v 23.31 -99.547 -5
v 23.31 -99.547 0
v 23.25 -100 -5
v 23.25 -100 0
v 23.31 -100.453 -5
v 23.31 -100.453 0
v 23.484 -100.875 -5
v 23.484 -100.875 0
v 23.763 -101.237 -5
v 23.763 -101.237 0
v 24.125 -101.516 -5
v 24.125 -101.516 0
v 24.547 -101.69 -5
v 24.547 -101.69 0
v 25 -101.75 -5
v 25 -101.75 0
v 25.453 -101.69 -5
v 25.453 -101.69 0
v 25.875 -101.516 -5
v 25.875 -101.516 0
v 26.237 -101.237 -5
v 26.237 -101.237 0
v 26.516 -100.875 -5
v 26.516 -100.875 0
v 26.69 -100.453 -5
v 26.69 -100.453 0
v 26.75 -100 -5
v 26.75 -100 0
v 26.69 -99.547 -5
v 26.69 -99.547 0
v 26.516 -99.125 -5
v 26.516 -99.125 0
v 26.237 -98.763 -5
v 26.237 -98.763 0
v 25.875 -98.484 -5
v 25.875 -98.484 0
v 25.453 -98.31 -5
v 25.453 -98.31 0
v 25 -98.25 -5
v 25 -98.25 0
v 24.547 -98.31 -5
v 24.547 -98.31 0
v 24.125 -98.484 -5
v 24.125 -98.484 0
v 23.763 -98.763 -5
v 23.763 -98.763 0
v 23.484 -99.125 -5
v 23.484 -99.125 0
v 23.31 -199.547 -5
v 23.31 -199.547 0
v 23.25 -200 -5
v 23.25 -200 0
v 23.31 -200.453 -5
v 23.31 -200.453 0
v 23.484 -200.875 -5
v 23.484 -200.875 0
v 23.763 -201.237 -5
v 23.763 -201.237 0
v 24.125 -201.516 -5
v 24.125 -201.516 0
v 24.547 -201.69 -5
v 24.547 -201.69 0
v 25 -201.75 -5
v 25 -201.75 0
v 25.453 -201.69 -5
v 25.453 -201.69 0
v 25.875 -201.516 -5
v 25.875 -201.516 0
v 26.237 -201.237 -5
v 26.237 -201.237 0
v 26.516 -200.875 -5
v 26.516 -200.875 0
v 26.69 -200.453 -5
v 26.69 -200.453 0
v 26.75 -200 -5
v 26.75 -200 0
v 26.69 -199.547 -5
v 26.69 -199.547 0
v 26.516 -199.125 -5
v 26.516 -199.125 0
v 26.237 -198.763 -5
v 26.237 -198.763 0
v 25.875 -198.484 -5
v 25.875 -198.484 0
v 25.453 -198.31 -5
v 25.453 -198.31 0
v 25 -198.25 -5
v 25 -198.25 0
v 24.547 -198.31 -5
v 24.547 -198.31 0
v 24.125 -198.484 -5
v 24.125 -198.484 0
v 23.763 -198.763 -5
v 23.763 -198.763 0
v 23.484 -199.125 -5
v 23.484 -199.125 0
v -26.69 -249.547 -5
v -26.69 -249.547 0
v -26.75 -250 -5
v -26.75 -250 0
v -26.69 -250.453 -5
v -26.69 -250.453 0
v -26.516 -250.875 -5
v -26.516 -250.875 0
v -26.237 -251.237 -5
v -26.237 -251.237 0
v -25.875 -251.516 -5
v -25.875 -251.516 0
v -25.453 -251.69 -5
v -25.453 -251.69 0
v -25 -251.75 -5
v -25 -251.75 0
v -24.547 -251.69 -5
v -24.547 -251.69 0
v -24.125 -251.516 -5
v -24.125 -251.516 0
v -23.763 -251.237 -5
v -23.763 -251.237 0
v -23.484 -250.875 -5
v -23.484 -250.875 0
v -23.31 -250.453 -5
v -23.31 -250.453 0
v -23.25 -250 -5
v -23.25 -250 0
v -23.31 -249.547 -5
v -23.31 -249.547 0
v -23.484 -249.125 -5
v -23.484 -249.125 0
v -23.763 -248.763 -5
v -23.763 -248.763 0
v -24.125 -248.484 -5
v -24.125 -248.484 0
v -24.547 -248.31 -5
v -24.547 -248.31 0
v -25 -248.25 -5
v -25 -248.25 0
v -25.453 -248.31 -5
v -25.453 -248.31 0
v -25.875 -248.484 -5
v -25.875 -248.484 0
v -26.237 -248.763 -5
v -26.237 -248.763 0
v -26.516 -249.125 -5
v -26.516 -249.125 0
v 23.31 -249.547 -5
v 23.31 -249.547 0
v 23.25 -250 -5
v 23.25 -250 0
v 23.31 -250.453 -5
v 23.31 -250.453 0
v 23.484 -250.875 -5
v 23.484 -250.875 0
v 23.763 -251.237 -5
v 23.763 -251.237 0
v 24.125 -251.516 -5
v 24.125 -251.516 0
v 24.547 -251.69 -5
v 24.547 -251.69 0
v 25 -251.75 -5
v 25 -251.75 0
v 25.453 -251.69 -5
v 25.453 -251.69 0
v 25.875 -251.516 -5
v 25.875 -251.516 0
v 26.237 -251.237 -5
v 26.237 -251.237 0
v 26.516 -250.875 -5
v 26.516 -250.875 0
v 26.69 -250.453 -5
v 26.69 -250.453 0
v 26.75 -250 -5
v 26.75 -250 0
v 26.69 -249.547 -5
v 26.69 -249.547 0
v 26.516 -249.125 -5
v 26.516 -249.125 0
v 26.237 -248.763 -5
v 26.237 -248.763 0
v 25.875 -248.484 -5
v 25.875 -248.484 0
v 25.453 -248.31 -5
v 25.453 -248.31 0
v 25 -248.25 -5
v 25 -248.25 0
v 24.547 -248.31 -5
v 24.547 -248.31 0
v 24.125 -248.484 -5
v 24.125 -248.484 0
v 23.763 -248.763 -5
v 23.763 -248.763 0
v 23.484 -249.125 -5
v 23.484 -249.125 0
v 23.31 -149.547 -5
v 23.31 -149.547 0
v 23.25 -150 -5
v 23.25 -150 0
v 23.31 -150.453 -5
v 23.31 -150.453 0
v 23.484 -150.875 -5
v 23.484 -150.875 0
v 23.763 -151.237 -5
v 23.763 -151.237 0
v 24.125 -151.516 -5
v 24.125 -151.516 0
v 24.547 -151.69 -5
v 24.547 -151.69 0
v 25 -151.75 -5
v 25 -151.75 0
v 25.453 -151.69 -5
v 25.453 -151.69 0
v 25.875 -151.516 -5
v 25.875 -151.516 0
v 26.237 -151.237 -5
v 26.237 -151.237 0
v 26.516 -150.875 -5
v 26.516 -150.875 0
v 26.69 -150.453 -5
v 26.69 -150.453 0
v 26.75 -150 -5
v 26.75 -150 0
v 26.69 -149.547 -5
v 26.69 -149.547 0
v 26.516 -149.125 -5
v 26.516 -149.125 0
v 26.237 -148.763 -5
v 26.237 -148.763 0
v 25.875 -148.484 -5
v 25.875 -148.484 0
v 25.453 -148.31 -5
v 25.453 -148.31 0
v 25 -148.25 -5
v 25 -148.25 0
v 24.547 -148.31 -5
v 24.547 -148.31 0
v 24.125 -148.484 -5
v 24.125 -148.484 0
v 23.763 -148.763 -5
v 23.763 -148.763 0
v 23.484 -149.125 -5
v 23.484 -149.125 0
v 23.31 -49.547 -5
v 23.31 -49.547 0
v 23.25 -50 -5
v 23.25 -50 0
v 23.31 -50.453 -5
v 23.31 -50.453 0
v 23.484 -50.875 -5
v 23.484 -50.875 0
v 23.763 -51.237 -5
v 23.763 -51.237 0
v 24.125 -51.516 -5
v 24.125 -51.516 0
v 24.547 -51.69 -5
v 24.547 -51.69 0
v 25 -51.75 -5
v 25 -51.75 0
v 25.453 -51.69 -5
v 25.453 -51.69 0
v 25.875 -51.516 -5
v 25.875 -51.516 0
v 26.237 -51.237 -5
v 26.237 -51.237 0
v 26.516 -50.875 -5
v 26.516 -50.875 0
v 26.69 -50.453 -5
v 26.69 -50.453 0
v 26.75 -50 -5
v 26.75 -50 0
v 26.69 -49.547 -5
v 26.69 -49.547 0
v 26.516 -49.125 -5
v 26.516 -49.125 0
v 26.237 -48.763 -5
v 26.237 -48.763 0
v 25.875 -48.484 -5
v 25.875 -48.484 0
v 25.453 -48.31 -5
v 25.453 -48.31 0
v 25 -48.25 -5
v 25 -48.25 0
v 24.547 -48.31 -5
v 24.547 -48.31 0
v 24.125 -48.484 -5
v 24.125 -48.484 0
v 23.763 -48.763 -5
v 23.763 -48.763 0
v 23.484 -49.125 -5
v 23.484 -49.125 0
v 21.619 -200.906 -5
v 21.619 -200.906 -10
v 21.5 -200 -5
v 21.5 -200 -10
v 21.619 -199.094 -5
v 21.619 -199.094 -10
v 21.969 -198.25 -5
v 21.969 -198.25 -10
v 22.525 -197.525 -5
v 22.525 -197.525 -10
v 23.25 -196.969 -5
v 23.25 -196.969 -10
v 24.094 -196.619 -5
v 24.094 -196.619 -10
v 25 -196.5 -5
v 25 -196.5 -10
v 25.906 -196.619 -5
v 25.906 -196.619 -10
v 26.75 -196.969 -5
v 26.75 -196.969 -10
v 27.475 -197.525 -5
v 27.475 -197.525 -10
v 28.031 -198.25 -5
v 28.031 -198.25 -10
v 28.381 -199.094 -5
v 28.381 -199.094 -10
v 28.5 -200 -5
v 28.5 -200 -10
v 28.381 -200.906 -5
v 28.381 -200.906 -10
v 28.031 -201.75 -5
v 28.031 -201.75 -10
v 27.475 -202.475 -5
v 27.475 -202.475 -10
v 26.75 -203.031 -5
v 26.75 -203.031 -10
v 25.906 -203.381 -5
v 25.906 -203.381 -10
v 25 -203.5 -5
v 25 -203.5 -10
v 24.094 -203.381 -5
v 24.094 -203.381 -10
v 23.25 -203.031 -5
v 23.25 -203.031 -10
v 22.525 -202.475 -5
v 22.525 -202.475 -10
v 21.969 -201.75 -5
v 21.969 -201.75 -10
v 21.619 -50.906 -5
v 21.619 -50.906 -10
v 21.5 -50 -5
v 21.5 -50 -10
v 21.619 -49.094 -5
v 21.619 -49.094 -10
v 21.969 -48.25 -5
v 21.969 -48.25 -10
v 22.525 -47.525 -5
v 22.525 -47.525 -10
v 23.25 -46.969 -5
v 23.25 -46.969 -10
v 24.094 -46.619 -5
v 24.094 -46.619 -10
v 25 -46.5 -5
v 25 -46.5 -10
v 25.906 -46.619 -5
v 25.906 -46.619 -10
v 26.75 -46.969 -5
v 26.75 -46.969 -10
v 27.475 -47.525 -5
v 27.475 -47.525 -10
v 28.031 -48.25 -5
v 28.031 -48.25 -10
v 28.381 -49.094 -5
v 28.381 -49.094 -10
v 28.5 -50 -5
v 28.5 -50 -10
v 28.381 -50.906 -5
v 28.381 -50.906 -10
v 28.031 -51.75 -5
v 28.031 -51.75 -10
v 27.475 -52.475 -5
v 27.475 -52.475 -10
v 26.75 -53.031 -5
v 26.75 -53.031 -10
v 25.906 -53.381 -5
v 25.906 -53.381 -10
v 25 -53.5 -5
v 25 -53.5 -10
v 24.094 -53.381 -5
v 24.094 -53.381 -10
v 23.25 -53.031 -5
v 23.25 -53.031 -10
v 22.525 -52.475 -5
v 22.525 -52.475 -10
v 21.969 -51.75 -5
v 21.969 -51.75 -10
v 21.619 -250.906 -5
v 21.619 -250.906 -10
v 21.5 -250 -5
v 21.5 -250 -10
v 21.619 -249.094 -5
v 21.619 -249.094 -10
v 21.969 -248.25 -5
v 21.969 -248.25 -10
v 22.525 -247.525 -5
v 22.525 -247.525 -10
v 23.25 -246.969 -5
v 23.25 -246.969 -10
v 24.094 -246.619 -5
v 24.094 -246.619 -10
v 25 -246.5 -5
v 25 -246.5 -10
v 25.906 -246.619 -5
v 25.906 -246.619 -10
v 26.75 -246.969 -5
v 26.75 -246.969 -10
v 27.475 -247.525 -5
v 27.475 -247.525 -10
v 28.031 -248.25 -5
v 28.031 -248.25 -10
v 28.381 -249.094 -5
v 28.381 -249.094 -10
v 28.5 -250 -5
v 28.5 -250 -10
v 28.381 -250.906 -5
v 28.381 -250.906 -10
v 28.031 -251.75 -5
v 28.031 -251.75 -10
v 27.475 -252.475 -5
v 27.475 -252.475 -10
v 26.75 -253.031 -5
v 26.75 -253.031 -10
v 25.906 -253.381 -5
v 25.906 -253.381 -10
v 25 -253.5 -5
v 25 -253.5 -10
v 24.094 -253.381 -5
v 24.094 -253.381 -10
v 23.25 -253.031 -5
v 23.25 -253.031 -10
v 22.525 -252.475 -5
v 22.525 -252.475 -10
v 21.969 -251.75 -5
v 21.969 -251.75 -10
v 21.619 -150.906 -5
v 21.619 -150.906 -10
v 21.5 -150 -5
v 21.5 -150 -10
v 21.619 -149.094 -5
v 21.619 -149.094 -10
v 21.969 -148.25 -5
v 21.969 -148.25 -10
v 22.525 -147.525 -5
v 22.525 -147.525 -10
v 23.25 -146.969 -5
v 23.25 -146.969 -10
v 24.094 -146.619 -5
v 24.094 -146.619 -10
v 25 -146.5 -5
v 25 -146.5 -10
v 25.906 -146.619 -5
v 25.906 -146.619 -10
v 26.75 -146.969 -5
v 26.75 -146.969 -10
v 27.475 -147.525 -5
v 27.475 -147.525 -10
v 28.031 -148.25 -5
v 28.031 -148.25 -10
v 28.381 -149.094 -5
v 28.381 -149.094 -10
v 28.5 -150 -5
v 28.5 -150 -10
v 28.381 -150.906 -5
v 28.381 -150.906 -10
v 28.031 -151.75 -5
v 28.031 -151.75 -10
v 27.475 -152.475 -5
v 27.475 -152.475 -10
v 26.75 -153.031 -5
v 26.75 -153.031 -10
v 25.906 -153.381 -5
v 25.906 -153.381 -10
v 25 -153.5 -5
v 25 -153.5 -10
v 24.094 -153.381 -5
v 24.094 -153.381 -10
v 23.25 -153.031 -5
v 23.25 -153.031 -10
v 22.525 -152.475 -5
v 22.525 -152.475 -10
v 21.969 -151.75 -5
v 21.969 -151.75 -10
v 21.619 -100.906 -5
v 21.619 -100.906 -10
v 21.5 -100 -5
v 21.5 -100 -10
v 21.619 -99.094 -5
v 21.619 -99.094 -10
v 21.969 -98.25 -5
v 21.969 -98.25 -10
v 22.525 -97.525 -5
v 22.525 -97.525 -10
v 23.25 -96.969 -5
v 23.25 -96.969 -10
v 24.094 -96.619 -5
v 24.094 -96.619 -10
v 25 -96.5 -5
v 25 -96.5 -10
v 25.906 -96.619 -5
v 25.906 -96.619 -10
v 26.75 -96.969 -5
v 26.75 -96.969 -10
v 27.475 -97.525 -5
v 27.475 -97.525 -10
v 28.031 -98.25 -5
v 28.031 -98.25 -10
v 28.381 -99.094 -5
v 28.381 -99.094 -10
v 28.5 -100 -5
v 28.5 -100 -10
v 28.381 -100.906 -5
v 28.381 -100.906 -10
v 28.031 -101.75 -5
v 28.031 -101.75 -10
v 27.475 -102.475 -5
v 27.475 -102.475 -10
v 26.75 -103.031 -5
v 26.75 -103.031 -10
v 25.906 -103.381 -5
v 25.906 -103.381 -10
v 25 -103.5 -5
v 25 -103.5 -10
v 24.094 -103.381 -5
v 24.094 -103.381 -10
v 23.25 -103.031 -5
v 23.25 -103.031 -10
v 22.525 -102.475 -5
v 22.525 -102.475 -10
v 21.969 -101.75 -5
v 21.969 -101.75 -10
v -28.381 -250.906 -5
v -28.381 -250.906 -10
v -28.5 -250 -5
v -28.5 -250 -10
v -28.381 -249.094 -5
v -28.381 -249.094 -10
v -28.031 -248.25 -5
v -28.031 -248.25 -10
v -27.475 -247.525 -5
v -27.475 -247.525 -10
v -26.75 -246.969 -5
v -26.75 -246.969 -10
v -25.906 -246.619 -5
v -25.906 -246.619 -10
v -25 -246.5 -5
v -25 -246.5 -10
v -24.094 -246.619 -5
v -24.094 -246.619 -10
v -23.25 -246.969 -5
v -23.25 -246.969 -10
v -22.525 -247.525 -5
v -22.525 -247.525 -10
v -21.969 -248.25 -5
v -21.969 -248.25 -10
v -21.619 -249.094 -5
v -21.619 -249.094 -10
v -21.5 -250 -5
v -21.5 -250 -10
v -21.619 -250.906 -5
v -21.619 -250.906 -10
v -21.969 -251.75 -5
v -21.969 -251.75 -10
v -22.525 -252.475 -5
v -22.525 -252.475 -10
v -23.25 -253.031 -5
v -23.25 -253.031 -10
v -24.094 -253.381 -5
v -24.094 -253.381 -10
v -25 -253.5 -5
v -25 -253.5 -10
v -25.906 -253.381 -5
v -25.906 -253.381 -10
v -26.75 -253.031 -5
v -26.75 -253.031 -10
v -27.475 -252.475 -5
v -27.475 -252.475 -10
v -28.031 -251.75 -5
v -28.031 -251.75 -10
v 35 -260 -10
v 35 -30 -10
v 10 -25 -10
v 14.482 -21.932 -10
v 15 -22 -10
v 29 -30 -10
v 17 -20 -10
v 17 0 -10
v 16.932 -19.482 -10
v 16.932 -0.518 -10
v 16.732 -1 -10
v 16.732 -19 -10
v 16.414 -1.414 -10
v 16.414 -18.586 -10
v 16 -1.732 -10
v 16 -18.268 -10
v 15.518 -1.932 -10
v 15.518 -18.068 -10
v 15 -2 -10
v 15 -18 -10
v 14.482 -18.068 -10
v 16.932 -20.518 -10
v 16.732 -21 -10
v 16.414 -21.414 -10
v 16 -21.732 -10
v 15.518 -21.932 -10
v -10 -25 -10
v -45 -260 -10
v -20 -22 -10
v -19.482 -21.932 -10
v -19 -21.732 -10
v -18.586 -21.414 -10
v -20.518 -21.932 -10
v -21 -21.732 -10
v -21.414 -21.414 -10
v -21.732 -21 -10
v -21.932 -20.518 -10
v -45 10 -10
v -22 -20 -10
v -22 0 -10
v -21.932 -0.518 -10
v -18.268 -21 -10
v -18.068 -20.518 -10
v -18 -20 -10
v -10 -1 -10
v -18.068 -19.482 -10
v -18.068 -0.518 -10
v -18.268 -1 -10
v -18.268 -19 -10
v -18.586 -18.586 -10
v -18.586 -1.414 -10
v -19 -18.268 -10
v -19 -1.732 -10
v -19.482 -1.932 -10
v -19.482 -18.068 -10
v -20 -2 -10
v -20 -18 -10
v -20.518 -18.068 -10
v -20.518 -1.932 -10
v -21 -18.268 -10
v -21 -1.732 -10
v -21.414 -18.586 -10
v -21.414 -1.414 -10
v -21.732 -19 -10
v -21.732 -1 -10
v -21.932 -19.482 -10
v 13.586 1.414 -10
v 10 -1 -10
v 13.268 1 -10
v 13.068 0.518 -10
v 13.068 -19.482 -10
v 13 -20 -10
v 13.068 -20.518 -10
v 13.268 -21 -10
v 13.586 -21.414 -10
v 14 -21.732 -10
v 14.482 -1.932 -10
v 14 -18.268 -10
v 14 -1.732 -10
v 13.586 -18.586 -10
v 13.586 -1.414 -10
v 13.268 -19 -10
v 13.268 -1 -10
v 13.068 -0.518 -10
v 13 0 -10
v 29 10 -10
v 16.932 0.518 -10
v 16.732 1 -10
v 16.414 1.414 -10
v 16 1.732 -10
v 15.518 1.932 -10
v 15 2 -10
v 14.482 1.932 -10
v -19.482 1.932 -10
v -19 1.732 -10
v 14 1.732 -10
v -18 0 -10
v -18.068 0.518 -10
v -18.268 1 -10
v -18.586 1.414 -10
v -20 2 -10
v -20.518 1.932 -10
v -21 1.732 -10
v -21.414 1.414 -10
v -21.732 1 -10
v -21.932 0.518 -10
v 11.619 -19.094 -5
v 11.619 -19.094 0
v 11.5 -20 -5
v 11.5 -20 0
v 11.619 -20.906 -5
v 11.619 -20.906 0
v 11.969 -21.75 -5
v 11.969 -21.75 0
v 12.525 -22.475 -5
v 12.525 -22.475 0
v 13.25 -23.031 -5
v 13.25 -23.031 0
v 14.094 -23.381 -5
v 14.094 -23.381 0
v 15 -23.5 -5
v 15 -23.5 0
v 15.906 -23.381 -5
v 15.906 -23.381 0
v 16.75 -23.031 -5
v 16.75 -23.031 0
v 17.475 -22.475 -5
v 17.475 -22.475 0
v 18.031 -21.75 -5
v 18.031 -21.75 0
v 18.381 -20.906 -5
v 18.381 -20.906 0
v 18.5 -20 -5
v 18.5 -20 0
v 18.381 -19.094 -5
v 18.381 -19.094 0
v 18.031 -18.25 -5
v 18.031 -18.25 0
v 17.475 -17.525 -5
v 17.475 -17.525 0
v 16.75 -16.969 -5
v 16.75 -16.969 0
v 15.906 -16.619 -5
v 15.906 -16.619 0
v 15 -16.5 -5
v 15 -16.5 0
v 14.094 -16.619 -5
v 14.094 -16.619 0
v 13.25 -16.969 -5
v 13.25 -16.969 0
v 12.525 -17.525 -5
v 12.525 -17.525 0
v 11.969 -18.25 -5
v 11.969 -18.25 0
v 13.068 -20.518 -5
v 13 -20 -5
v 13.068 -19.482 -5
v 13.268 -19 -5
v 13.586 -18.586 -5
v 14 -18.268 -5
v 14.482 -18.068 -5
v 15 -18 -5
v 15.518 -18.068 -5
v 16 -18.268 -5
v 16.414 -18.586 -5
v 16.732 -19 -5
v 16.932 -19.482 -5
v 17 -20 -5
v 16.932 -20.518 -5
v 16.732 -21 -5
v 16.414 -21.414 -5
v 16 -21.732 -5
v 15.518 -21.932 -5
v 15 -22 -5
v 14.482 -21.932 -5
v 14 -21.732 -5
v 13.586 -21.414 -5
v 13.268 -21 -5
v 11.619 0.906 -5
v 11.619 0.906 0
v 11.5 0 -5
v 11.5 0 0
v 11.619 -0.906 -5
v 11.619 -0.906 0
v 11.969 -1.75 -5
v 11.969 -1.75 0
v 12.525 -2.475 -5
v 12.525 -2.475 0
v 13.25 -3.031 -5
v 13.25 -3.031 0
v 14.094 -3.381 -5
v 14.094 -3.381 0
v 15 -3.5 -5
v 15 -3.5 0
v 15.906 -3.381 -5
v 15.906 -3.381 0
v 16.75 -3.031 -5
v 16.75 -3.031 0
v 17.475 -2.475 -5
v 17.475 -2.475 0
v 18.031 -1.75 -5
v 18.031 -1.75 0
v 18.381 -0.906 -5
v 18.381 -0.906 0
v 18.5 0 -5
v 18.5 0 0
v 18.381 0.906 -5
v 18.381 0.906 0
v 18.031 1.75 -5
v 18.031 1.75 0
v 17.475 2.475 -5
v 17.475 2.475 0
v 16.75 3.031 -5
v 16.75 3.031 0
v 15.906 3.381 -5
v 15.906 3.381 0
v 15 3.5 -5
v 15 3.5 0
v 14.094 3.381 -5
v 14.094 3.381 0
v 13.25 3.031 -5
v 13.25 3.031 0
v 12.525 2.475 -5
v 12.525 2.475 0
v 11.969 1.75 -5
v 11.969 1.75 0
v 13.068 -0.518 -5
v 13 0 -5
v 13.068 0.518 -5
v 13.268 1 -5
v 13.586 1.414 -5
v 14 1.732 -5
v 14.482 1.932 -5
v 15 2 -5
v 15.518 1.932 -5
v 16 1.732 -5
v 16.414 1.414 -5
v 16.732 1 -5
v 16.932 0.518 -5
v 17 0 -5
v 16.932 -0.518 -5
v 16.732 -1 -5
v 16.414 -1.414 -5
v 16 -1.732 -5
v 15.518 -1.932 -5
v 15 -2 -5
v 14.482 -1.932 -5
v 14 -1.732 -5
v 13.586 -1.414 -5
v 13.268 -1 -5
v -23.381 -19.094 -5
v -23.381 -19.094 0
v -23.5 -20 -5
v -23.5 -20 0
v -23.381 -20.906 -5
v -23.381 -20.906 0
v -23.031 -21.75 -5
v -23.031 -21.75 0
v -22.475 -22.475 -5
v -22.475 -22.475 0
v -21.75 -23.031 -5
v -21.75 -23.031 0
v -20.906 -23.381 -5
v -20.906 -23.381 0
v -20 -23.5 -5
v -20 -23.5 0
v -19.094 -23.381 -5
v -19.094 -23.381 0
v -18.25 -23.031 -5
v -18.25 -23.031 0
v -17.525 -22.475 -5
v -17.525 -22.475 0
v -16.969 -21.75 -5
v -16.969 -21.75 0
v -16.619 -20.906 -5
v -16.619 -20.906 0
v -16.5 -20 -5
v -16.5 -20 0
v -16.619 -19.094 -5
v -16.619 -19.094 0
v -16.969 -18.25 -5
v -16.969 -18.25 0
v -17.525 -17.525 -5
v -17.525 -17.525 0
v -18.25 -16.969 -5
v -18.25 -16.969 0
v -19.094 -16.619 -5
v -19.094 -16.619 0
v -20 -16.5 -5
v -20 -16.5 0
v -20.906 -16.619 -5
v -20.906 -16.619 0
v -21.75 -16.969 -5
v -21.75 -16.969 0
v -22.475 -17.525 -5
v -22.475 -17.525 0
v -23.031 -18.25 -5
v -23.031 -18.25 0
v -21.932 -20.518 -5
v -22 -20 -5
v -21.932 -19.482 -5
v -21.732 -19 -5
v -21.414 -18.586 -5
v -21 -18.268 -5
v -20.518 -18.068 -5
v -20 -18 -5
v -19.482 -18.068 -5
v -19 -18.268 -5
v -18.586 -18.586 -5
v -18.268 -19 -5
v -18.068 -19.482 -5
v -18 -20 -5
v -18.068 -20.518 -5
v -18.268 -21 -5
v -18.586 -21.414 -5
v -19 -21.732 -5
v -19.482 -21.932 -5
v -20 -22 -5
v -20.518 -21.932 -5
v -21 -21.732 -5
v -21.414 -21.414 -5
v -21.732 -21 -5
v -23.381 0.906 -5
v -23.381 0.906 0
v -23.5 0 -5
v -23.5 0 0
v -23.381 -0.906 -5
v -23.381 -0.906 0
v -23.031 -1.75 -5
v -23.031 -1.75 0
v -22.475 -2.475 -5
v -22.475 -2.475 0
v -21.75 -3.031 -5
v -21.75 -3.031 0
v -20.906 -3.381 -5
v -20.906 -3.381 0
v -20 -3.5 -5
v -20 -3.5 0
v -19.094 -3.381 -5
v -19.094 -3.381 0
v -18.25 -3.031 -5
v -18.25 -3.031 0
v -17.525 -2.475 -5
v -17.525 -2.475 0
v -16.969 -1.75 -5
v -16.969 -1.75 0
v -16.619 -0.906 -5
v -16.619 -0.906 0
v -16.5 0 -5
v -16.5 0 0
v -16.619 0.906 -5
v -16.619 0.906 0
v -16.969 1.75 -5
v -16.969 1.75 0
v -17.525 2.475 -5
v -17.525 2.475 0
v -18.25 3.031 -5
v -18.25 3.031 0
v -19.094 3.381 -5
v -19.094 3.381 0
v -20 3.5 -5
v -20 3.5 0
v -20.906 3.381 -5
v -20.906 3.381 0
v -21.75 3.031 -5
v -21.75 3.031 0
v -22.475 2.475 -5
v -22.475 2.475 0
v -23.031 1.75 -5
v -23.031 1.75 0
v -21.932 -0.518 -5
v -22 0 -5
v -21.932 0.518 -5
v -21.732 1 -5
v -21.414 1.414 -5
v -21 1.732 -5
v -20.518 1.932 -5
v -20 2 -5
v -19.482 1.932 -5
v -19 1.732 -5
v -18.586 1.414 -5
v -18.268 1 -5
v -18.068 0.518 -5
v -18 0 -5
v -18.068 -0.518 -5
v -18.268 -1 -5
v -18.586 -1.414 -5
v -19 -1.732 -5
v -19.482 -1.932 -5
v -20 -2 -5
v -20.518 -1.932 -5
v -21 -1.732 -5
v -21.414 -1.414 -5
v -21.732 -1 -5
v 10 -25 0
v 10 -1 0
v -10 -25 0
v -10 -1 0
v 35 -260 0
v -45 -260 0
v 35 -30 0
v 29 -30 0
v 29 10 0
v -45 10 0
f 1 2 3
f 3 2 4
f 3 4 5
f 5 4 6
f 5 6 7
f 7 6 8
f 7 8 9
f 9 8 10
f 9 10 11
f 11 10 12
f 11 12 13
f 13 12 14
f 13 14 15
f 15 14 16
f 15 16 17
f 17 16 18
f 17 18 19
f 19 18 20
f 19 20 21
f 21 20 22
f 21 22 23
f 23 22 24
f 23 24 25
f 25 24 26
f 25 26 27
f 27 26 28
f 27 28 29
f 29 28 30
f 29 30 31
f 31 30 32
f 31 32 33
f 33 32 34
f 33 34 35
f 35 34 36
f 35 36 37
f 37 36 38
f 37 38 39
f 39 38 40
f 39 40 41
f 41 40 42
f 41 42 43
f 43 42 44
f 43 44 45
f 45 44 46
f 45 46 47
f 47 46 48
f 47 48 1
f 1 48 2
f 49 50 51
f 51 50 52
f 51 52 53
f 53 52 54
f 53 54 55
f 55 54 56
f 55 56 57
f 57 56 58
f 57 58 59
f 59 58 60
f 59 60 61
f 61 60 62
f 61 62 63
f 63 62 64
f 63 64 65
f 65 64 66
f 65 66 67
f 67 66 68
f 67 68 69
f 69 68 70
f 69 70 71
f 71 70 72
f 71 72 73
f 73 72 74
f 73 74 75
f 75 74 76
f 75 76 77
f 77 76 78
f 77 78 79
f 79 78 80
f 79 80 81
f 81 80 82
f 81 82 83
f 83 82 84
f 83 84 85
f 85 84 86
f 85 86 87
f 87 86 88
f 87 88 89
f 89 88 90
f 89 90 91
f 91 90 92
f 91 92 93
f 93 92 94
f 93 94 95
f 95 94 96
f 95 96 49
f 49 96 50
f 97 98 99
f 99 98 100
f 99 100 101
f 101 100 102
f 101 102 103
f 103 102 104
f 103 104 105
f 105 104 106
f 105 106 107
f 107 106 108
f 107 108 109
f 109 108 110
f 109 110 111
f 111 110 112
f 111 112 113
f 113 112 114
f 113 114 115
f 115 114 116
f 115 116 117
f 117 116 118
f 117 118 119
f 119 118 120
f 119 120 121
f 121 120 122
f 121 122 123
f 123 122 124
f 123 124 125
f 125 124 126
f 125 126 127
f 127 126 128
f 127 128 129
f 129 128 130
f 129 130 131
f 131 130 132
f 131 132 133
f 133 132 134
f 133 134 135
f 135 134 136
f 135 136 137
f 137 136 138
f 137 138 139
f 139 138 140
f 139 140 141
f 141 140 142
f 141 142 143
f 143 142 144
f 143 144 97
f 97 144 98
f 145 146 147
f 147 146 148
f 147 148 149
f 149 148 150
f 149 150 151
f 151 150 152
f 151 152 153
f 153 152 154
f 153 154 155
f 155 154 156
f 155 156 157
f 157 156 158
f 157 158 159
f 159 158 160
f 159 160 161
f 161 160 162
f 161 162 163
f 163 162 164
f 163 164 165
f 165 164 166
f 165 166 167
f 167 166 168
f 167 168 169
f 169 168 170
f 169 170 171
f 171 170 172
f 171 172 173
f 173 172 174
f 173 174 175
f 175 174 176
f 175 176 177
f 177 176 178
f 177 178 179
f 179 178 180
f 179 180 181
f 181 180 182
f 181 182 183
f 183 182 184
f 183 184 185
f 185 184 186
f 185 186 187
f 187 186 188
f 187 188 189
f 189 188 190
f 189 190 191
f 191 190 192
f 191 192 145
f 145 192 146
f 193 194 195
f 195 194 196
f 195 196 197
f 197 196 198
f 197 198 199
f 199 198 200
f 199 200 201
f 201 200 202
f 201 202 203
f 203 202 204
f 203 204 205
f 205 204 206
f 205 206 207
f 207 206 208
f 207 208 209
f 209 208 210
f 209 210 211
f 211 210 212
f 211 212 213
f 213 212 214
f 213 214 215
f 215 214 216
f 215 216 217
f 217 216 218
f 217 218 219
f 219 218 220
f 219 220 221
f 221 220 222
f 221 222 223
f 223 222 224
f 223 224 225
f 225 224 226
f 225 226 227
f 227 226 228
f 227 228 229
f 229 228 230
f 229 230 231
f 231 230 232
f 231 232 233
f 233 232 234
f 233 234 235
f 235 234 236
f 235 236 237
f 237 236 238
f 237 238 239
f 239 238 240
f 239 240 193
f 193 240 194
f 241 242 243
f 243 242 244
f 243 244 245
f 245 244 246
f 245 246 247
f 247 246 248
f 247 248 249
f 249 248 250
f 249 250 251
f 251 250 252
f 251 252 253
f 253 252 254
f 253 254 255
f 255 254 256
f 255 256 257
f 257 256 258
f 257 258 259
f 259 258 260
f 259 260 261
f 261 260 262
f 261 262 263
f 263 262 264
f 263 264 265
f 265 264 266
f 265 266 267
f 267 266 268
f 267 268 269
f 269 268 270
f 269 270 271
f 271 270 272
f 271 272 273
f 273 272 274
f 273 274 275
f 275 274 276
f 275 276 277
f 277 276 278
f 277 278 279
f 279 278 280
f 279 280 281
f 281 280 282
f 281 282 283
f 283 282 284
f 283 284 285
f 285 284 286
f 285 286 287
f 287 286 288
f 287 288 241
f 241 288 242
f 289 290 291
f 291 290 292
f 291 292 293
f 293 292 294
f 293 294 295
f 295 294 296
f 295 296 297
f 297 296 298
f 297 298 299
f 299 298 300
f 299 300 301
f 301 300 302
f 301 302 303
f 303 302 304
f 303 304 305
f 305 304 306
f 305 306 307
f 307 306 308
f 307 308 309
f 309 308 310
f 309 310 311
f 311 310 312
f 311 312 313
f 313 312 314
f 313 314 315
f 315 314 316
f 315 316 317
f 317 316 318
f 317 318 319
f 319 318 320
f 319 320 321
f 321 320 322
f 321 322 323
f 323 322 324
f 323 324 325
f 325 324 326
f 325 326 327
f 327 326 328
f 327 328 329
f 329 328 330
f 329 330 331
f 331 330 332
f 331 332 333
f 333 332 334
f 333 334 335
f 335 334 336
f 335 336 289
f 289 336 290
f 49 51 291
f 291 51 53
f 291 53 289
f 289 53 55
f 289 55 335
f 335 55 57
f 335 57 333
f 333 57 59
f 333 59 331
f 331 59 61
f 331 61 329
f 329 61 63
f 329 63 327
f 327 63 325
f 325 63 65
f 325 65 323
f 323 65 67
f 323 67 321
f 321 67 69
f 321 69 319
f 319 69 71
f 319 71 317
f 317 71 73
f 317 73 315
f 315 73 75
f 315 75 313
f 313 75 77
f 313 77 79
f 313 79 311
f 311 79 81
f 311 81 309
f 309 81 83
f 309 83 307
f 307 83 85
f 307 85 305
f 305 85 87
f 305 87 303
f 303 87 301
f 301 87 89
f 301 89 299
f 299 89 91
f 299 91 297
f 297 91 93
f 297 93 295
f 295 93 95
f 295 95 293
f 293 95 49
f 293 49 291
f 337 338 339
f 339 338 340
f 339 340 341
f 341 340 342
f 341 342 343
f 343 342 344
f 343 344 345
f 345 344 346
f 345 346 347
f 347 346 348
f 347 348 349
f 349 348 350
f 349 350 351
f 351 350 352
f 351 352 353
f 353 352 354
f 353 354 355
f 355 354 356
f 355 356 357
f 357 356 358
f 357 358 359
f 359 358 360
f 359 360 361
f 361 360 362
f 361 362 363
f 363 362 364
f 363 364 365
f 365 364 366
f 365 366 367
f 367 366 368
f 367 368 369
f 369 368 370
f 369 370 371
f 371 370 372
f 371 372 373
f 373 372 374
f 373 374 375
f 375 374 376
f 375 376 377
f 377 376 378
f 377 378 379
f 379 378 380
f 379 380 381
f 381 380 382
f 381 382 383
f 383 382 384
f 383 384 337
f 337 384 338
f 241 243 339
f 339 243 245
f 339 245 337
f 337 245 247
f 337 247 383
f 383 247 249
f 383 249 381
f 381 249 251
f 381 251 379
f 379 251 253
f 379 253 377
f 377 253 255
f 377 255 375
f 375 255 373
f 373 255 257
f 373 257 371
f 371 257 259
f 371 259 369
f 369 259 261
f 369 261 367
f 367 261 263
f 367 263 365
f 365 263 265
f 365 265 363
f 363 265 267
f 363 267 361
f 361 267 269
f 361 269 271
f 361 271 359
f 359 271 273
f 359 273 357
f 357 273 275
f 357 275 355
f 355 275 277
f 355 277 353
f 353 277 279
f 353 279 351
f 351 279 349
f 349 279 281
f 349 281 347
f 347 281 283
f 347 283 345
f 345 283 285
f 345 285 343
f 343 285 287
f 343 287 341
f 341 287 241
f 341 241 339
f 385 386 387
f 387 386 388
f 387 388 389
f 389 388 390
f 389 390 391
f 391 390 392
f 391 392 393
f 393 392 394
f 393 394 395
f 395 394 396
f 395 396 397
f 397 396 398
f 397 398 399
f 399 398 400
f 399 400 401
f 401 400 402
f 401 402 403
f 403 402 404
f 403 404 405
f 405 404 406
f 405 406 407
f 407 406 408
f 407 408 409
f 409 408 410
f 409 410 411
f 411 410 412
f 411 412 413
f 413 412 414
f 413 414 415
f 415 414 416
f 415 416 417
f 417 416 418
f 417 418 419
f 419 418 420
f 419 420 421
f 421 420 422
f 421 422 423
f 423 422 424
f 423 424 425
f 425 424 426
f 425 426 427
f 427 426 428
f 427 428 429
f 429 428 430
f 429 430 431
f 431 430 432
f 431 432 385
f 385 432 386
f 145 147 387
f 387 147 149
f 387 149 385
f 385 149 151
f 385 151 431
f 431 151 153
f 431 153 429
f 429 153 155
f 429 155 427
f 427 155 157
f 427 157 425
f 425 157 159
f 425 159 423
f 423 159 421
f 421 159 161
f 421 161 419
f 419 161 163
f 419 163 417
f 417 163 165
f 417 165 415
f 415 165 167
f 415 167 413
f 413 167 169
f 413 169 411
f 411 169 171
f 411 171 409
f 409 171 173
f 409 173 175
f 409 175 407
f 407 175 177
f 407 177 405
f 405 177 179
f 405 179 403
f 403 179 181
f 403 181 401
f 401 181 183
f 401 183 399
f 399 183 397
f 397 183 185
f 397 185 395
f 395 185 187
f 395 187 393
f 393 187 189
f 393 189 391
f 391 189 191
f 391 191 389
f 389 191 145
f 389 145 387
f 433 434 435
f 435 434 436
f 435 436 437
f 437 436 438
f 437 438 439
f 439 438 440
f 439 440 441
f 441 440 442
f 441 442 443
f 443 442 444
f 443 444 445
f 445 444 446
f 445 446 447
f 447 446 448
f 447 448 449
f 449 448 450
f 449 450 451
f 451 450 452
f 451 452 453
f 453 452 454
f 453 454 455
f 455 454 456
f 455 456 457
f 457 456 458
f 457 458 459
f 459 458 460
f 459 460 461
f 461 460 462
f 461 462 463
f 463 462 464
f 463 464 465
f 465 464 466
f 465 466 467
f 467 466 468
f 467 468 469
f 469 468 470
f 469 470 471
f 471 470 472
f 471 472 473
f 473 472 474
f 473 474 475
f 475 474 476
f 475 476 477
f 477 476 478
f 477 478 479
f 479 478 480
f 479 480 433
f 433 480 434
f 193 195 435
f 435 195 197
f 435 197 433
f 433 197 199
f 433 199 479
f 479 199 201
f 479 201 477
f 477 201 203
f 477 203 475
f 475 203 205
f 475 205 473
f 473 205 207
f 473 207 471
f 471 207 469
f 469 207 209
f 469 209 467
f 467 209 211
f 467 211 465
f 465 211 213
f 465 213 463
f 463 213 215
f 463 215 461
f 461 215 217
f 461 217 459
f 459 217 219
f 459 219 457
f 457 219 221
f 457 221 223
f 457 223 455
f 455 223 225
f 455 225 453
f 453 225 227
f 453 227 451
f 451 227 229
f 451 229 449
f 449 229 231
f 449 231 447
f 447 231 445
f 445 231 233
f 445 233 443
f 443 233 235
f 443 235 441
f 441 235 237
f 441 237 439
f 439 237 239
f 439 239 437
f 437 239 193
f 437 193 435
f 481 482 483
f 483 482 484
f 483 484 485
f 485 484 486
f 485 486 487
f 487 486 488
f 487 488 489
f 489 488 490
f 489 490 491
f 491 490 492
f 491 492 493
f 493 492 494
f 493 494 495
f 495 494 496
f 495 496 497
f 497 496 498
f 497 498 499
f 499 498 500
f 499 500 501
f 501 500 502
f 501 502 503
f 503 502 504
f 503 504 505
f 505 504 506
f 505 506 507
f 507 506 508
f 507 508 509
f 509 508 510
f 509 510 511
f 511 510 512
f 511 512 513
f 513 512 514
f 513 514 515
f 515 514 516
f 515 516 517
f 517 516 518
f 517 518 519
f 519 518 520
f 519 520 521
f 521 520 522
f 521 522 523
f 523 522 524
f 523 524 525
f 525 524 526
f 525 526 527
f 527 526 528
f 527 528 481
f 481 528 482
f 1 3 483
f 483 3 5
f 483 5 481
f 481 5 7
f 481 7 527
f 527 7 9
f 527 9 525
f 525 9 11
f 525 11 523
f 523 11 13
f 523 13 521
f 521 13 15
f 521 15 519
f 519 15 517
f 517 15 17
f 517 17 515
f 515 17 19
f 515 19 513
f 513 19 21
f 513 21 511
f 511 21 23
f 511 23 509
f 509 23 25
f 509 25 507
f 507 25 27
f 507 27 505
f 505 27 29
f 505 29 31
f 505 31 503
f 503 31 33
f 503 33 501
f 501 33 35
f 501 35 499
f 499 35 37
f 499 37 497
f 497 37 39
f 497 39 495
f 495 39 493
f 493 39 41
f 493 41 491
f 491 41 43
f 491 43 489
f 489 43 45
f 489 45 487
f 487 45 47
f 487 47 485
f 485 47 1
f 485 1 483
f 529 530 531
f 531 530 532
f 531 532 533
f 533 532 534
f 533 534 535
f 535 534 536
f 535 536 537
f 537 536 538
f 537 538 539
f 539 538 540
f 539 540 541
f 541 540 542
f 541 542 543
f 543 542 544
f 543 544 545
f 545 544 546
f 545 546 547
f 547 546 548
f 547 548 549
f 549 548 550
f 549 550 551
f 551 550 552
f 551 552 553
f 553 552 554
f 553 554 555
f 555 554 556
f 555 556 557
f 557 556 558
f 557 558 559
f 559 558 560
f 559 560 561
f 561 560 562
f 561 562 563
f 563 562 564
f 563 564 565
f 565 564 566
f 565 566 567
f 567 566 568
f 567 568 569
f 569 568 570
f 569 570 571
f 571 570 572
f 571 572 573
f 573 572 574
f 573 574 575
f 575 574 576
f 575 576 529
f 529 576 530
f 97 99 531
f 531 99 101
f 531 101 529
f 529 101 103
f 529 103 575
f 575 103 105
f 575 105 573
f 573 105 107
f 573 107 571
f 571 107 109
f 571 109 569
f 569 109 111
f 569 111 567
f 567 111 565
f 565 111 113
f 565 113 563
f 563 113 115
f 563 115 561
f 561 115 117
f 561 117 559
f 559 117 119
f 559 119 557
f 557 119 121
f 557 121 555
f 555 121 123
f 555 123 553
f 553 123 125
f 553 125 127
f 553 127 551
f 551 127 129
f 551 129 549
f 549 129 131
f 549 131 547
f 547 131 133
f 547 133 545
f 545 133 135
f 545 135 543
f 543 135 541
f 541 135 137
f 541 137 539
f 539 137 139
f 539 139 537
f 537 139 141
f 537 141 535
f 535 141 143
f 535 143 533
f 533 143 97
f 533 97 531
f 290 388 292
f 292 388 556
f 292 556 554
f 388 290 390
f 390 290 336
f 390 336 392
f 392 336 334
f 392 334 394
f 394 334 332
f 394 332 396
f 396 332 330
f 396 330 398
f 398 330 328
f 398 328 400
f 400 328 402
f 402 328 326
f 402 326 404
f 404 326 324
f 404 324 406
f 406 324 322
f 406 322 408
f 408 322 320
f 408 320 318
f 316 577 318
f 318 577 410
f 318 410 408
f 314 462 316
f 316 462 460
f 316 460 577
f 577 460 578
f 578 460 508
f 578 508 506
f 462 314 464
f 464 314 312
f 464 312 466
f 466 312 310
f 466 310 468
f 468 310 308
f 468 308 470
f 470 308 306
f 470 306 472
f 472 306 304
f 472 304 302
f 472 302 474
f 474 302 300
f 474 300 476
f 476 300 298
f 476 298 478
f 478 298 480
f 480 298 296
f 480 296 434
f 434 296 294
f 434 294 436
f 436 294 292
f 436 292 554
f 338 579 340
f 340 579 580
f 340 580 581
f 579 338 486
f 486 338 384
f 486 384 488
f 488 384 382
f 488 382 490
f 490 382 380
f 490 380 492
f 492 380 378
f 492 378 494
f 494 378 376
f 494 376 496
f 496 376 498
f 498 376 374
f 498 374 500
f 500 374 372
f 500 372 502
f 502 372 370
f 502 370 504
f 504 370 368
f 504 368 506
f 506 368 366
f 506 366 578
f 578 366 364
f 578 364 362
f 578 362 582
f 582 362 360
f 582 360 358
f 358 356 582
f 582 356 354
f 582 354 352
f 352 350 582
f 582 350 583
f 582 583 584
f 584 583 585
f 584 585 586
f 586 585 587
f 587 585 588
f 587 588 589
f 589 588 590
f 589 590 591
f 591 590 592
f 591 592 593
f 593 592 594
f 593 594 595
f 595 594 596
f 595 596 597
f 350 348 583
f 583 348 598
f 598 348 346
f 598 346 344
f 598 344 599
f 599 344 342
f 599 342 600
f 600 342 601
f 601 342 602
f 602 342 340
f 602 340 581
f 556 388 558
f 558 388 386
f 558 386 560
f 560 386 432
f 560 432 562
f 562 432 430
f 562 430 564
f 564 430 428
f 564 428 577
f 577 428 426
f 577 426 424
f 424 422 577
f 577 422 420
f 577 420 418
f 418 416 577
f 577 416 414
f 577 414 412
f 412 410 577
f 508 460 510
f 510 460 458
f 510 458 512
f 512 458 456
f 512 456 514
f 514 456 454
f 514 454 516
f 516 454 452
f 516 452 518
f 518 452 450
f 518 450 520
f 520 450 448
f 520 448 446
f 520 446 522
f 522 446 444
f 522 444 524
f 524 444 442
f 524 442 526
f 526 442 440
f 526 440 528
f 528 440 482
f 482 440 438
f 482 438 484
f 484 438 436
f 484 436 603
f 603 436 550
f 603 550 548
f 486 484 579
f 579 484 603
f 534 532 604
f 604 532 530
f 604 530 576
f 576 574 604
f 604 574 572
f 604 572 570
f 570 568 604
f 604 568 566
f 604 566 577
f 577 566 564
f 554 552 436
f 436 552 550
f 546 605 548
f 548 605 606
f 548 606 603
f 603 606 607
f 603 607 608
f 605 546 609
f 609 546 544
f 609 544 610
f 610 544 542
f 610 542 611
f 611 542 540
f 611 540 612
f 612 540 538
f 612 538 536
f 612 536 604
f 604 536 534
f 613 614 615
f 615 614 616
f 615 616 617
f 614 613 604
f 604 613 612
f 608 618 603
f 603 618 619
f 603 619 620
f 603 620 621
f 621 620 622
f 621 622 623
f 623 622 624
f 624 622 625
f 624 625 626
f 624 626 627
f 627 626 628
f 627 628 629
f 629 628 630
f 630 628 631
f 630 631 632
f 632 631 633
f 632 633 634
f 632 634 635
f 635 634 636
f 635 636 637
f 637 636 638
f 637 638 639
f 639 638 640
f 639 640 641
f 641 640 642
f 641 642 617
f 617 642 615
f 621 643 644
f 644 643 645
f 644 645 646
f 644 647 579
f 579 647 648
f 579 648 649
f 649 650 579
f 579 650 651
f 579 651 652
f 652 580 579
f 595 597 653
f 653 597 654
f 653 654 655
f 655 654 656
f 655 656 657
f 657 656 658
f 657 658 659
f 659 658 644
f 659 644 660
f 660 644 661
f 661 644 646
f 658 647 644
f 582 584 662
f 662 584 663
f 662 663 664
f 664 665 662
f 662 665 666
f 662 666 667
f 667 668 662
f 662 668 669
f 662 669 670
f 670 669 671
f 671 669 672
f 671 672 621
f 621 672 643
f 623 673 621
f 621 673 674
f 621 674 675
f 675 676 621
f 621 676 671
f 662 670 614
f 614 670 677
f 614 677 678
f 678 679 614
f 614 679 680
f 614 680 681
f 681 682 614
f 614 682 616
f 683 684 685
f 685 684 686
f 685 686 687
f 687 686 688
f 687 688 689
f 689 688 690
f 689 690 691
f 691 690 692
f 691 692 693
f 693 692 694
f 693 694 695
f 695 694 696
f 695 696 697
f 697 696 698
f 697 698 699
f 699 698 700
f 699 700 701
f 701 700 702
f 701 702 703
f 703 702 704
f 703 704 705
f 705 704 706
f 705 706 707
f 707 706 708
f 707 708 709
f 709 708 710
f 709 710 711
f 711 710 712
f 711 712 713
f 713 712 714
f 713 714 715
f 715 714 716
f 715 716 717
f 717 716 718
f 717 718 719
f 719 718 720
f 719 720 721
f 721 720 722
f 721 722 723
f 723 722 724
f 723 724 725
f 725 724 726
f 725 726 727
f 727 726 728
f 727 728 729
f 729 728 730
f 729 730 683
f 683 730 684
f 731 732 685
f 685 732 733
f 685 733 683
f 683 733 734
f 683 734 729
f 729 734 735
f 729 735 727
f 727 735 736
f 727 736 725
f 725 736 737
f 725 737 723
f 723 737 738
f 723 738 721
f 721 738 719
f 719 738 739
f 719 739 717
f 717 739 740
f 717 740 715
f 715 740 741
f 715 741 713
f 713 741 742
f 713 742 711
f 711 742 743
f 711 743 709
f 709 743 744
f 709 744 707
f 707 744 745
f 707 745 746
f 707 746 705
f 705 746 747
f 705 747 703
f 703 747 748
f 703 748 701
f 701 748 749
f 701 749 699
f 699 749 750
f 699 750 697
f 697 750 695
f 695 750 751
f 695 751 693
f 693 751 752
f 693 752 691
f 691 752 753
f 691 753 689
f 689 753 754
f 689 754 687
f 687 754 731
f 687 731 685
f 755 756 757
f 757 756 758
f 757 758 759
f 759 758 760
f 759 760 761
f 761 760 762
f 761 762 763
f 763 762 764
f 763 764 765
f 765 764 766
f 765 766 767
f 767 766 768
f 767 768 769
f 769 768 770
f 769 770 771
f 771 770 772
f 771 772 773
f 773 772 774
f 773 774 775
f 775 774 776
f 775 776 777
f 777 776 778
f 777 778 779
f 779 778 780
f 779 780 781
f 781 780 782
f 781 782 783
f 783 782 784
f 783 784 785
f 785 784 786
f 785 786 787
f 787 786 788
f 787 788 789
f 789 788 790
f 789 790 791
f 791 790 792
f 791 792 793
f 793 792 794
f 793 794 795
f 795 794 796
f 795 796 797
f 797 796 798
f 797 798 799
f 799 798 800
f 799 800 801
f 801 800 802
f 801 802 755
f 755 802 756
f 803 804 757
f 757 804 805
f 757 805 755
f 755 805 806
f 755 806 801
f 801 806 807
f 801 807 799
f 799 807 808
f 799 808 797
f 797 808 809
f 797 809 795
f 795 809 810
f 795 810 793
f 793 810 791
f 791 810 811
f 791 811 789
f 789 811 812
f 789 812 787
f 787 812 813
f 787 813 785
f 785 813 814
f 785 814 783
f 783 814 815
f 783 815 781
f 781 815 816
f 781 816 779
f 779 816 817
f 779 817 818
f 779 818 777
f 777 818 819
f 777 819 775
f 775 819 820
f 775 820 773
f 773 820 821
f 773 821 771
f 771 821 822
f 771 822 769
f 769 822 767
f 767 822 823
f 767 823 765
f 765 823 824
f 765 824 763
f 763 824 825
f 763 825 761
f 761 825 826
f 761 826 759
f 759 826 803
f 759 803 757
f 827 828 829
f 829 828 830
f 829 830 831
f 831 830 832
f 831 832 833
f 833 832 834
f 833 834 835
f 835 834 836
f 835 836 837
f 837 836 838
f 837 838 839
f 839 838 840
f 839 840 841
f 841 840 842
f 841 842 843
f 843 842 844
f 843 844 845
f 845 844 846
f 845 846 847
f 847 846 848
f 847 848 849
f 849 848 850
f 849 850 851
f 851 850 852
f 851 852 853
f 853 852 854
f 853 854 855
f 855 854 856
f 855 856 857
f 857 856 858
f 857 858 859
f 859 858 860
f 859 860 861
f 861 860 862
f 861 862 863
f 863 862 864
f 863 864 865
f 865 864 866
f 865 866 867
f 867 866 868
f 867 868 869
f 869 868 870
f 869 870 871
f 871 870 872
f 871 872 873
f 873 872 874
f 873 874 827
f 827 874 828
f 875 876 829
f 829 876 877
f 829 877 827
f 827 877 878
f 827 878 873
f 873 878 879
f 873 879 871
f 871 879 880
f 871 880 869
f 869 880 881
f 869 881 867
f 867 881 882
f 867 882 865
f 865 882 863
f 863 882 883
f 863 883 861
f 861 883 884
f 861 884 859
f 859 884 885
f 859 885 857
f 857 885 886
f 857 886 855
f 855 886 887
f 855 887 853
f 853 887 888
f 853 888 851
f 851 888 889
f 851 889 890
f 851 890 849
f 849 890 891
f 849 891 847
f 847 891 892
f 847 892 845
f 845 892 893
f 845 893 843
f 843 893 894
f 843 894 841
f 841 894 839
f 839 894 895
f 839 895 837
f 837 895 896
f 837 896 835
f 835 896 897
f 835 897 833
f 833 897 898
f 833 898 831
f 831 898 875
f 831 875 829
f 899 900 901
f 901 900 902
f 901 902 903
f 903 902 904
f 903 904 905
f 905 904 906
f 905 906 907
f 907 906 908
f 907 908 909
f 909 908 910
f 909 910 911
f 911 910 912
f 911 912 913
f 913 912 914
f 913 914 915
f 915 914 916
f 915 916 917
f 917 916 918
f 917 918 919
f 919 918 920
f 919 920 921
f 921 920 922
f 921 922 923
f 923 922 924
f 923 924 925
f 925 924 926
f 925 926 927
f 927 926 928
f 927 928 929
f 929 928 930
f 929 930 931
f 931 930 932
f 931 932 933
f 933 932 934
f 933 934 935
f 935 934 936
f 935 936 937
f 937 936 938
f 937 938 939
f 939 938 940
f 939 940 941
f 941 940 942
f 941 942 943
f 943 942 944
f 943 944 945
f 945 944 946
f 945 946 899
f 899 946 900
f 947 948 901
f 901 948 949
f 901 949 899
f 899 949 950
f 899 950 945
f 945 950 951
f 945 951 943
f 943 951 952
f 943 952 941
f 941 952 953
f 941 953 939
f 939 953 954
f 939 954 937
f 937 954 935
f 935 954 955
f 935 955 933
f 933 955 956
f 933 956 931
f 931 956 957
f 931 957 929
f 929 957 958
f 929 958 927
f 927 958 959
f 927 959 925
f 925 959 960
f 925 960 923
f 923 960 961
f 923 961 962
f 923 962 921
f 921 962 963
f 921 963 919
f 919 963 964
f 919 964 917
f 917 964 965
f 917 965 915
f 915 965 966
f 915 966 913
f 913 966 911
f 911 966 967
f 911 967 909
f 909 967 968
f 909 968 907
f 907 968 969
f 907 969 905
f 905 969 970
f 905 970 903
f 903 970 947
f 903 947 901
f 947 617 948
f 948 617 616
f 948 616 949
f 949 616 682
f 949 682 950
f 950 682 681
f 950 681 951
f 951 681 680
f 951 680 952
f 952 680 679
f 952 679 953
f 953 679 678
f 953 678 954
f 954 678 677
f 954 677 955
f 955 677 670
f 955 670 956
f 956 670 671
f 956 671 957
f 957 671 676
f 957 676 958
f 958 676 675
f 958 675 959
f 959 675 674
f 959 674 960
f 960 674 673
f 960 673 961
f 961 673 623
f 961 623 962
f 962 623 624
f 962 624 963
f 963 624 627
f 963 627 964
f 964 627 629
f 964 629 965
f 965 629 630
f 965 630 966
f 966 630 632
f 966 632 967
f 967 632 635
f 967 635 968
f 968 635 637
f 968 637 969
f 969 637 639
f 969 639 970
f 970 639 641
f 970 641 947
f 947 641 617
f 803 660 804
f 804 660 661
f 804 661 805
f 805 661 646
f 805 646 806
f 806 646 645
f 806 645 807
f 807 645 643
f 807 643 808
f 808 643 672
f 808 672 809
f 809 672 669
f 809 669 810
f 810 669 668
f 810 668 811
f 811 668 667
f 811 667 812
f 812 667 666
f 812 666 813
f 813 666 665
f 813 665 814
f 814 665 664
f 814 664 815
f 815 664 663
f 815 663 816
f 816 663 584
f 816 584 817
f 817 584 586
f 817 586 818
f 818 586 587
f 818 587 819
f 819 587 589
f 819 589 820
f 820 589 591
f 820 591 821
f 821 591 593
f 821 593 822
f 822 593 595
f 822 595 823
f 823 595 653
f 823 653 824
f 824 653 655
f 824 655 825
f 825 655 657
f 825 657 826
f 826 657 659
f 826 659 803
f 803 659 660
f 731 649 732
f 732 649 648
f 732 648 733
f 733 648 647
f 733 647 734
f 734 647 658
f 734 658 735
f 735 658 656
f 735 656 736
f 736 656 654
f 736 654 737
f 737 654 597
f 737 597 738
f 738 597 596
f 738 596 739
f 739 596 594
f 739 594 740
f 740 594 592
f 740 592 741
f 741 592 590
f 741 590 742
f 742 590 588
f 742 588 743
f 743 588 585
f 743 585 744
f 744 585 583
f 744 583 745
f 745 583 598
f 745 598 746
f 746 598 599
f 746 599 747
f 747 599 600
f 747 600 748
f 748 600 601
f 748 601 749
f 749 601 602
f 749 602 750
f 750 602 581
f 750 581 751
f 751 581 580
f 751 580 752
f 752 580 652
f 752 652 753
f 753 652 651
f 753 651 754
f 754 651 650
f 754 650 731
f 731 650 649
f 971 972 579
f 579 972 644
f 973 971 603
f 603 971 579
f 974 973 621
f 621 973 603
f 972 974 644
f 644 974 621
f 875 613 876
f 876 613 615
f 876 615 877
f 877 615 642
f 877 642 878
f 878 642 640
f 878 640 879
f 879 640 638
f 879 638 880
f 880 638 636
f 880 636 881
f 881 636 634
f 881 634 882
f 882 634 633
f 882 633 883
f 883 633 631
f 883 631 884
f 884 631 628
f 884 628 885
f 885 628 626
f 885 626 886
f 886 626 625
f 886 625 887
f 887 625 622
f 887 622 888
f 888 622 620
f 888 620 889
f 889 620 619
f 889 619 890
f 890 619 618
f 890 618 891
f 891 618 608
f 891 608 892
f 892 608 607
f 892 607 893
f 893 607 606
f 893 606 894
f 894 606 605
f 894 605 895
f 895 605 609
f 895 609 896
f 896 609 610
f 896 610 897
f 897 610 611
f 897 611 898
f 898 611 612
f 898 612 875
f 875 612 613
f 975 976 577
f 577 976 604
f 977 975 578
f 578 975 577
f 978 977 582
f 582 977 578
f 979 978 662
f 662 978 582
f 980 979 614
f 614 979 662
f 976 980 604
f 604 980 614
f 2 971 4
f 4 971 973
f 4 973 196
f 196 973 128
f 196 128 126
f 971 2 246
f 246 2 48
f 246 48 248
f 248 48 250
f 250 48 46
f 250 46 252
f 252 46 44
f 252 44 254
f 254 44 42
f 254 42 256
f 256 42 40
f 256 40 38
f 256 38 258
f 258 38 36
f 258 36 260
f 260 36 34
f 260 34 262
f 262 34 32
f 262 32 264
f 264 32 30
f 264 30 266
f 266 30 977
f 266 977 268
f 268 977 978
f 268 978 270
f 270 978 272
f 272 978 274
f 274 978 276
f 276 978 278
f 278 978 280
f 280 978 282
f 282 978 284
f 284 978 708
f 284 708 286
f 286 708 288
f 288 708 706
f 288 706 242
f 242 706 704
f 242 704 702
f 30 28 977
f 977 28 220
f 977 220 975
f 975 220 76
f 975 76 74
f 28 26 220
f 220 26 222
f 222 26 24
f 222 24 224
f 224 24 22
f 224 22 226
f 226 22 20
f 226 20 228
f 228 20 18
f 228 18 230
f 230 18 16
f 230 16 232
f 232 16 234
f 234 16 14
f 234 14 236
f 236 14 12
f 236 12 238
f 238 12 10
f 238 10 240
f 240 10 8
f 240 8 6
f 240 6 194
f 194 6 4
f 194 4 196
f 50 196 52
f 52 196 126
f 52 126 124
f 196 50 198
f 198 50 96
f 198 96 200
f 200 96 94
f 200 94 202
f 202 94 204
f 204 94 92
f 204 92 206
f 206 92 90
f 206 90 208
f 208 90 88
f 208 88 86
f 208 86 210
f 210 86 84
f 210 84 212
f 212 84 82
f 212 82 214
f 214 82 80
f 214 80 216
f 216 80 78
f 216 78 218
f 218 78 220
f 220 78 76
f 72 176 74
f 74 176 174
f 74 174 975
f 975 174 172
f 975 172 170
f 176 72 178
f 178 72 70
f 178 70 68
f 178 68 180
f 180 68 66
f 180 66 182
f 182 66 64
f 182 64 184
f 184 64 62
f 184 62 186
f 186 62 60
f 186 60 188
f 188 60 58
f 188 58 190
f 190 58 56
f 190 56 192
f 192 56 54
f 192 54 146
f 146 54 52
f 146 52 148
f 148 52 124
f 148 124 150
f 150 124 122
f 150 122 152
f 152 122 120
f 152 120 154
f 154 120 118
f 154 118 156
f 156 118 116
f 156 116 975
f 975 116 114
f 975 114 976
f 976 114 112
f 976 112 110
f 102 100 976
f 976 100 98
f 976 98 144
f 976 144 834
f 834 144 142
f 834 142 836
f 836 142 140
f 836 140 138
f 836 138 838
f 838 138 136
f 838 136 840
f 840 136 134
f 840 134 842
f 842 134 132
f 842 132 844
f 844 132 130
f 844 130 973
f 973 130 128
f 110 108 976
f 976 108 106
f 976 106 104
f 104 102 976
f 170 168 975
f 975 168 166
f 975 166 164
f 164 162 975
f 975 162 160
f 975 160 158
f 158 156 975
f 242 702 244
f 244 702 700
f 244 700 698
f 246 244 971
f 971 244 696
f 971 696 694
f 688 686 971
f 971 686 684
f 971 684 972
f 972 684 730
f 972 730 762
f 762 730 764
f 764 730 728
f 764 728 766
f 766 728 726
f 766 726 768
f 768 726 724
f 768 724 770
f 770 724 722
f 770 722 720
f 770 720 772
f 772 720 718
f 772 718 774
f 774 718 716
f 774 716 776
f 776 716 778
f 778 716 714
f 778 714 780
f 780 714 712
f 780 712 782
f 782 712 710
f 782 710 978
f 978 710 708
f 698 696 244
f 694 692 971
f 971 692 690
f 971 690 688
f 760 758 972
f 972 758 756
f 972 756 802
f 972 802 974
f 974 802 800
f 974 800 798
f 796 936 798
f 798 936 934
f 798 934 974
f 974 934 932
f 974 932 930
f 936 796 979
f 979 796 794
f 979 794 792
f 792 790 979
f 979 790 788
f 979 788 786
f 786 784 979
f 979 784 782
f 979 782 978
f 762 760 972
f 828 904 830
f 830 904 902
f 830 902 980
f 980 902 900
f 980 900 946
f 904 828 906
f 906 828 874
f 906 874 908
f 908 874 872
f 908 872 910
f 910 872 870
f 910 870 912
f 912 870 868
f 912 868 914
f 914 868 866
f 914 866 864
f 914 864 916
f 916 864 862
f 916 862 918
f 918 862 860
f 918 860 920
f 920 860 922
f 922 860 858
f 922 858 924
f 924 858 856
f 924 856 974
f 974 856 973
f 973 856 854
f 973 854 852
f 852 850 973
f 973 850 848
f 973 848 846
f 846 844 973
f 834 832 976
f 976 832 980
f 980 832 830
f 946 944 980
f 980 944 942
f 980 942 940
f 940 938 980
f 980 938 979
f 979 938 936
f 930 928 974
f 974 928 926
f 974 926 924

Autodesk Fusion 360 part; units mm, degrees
sketch "Szkic1" plane through (0, 0, 0) normal (0, 0, 1) x (1, 0, 0)
  line L0 (29, -30) -> (29, 10)
  line L1 (-31, -30) -> (29, -30)
  line L2 (-31, 10) -> (-31, -30)
  line L3 (29, 10) -> (-31, 10)
  line L4 (-10, -1) -> (10, -1)
  line L5 (-10, -25) -> (-10, -1)
  line L6 (10, -25) -> (-10, -25)
  line L7 (10, -1) -> (10, -25)
  circle A0 centre (15, -20) radius 2
  circle A1 centre (15, 0) radius 2
  circle A2 centre (-20, 0) radius 2
  circle A3 centre (-20, -20) radius 2
  line L8 (29, 10) -> (29, -30)
  line L9 (29, -30) -> (35, -30)
  line L10 (35, -30) -> (35, 10)
  line L11 (35, 10) -> (29, 10)
  line L12 (-31, 10) -> (-31, -30)
  line L13 (-31, -30) -> (-45, -30)
  line L14 (-45, -30) -> (-45, 10)
  line L15 (-45, 10) -> (-31, 10)
  line L16 (35, -30) -> (35, -260)
  line L17 (-45, -30) -> (-45, -260)
  line L18 (-45, -260) -> (35, -260)
  circle A4 centre (-20, 0) radius 3.5
  circle A5 centre (-20, -20) radius 3.5
  circle A6 centre (15, -20) radius 3.5
  circle A7 centre (15, 0) radius 3.5
  dimension "d1" = 4
  dimension "d2" = 4
  dimension "d3" = 4
  dimension "d4" = 6
  dimension "d5" = 14
  dimension "d6" = 230
  dimension "d7" = 230
  dimension "d8" = 7
  dimension "d9" = 7
  dimension "d10" = 7
  dimension "d11" = 7
extrude "Wyciągnięcie proste1" add sketch "Szkic1" against normal blind 10 contours L0 L1 L2 L3 L8 L12 | L1 L9 L13 L16 L17 L18 | L2 L12 L13 L14 L15 | A4 | A5 | A6 | A7
extrude "Wyciągnięcie proste2" cut sketch "Szkic1" against normal blind 5 contours A4 | A5 | A6 | A7
sketch "Szkic2" plane through (0, 0, -10) normal (0, 0, -1) x (1, 0, 0)
  circle A0 centre (-20, 20) radius 2
  line L0 (10, 1) -> (-10, 1)
  line L1 (-10, 1) -> (-10, 25)
  line L2 (-10, 25) -> (10, 25)
  line L3 (10, 25) -> (10, 1)
  circle A1 centre (15, 20) radius 2
  circle A2 centre (15, 0) radius 2
  circle A3 centre (-20, 0) radius 2
  line L4 (-45, 260) -> (-45, -10)
  line L5 (-45, -10) -> (29, -10)
  line L6 (29, -10) -> (29, 30)
  line L7 (29, 30) -> (35, 30)
  line L8 (35, 30) -> (35, 260)
  line L9 (35, 260) -> (-45, 260)
  circle A4 centre (25, 250) radius 1.75
  circle A5 centre (-25, 250) radius 1.75
  circle A6 centre (25, 200) radius 1.75
  circle A7 centre (25, 150) radius 1.75
  circle A8 centre (25, 100) radius 1.75
  circle A9 centre (25, 50) radius 1.75
  circle A10 centre (25, 50) radius 3.5
  circle A11 centre (25, 100) radius 3.5
  circle A12 centre (25, 150) radius 3.5
  circle A13 centre (25, 200) radius 3.5
  circle A14 centre (25, 250) radius 3.5
  circle A15 centre (-25, 250) radius 3.5
  dimension "d16" = 3.5
  dimension "d17" = 3.5
  dimension "d18" = 3.5
  dimension "d19" = 3.5
  dimension "d20" = 3.5
  dimension "d21" = 3.5
  dimension "d22" = 7
  dimension "d23" = 7
  dimension "d24" = 7
  dimension "d25" = 7
  dimension "d26" = 7
  dimension "d27" = 7
extrude "Wyciągnięcie proste3" cut sketch "Szkic2" against normal blind 5 contours A10 | A11 | A12 | A13 | A14 | A15
extrude "Wyciągnięcie proste4" cut 6 faces at (-25.7416, -250.3286, -10) (24.2584, -250.3286, -10) (23.7552, -199.6385, -10) (23.7552, -149.6385, -10) (25.3956, -99.1189, -10) (25.1298, -50.5687, -10) along direction (0, 0, 1) blind 10
